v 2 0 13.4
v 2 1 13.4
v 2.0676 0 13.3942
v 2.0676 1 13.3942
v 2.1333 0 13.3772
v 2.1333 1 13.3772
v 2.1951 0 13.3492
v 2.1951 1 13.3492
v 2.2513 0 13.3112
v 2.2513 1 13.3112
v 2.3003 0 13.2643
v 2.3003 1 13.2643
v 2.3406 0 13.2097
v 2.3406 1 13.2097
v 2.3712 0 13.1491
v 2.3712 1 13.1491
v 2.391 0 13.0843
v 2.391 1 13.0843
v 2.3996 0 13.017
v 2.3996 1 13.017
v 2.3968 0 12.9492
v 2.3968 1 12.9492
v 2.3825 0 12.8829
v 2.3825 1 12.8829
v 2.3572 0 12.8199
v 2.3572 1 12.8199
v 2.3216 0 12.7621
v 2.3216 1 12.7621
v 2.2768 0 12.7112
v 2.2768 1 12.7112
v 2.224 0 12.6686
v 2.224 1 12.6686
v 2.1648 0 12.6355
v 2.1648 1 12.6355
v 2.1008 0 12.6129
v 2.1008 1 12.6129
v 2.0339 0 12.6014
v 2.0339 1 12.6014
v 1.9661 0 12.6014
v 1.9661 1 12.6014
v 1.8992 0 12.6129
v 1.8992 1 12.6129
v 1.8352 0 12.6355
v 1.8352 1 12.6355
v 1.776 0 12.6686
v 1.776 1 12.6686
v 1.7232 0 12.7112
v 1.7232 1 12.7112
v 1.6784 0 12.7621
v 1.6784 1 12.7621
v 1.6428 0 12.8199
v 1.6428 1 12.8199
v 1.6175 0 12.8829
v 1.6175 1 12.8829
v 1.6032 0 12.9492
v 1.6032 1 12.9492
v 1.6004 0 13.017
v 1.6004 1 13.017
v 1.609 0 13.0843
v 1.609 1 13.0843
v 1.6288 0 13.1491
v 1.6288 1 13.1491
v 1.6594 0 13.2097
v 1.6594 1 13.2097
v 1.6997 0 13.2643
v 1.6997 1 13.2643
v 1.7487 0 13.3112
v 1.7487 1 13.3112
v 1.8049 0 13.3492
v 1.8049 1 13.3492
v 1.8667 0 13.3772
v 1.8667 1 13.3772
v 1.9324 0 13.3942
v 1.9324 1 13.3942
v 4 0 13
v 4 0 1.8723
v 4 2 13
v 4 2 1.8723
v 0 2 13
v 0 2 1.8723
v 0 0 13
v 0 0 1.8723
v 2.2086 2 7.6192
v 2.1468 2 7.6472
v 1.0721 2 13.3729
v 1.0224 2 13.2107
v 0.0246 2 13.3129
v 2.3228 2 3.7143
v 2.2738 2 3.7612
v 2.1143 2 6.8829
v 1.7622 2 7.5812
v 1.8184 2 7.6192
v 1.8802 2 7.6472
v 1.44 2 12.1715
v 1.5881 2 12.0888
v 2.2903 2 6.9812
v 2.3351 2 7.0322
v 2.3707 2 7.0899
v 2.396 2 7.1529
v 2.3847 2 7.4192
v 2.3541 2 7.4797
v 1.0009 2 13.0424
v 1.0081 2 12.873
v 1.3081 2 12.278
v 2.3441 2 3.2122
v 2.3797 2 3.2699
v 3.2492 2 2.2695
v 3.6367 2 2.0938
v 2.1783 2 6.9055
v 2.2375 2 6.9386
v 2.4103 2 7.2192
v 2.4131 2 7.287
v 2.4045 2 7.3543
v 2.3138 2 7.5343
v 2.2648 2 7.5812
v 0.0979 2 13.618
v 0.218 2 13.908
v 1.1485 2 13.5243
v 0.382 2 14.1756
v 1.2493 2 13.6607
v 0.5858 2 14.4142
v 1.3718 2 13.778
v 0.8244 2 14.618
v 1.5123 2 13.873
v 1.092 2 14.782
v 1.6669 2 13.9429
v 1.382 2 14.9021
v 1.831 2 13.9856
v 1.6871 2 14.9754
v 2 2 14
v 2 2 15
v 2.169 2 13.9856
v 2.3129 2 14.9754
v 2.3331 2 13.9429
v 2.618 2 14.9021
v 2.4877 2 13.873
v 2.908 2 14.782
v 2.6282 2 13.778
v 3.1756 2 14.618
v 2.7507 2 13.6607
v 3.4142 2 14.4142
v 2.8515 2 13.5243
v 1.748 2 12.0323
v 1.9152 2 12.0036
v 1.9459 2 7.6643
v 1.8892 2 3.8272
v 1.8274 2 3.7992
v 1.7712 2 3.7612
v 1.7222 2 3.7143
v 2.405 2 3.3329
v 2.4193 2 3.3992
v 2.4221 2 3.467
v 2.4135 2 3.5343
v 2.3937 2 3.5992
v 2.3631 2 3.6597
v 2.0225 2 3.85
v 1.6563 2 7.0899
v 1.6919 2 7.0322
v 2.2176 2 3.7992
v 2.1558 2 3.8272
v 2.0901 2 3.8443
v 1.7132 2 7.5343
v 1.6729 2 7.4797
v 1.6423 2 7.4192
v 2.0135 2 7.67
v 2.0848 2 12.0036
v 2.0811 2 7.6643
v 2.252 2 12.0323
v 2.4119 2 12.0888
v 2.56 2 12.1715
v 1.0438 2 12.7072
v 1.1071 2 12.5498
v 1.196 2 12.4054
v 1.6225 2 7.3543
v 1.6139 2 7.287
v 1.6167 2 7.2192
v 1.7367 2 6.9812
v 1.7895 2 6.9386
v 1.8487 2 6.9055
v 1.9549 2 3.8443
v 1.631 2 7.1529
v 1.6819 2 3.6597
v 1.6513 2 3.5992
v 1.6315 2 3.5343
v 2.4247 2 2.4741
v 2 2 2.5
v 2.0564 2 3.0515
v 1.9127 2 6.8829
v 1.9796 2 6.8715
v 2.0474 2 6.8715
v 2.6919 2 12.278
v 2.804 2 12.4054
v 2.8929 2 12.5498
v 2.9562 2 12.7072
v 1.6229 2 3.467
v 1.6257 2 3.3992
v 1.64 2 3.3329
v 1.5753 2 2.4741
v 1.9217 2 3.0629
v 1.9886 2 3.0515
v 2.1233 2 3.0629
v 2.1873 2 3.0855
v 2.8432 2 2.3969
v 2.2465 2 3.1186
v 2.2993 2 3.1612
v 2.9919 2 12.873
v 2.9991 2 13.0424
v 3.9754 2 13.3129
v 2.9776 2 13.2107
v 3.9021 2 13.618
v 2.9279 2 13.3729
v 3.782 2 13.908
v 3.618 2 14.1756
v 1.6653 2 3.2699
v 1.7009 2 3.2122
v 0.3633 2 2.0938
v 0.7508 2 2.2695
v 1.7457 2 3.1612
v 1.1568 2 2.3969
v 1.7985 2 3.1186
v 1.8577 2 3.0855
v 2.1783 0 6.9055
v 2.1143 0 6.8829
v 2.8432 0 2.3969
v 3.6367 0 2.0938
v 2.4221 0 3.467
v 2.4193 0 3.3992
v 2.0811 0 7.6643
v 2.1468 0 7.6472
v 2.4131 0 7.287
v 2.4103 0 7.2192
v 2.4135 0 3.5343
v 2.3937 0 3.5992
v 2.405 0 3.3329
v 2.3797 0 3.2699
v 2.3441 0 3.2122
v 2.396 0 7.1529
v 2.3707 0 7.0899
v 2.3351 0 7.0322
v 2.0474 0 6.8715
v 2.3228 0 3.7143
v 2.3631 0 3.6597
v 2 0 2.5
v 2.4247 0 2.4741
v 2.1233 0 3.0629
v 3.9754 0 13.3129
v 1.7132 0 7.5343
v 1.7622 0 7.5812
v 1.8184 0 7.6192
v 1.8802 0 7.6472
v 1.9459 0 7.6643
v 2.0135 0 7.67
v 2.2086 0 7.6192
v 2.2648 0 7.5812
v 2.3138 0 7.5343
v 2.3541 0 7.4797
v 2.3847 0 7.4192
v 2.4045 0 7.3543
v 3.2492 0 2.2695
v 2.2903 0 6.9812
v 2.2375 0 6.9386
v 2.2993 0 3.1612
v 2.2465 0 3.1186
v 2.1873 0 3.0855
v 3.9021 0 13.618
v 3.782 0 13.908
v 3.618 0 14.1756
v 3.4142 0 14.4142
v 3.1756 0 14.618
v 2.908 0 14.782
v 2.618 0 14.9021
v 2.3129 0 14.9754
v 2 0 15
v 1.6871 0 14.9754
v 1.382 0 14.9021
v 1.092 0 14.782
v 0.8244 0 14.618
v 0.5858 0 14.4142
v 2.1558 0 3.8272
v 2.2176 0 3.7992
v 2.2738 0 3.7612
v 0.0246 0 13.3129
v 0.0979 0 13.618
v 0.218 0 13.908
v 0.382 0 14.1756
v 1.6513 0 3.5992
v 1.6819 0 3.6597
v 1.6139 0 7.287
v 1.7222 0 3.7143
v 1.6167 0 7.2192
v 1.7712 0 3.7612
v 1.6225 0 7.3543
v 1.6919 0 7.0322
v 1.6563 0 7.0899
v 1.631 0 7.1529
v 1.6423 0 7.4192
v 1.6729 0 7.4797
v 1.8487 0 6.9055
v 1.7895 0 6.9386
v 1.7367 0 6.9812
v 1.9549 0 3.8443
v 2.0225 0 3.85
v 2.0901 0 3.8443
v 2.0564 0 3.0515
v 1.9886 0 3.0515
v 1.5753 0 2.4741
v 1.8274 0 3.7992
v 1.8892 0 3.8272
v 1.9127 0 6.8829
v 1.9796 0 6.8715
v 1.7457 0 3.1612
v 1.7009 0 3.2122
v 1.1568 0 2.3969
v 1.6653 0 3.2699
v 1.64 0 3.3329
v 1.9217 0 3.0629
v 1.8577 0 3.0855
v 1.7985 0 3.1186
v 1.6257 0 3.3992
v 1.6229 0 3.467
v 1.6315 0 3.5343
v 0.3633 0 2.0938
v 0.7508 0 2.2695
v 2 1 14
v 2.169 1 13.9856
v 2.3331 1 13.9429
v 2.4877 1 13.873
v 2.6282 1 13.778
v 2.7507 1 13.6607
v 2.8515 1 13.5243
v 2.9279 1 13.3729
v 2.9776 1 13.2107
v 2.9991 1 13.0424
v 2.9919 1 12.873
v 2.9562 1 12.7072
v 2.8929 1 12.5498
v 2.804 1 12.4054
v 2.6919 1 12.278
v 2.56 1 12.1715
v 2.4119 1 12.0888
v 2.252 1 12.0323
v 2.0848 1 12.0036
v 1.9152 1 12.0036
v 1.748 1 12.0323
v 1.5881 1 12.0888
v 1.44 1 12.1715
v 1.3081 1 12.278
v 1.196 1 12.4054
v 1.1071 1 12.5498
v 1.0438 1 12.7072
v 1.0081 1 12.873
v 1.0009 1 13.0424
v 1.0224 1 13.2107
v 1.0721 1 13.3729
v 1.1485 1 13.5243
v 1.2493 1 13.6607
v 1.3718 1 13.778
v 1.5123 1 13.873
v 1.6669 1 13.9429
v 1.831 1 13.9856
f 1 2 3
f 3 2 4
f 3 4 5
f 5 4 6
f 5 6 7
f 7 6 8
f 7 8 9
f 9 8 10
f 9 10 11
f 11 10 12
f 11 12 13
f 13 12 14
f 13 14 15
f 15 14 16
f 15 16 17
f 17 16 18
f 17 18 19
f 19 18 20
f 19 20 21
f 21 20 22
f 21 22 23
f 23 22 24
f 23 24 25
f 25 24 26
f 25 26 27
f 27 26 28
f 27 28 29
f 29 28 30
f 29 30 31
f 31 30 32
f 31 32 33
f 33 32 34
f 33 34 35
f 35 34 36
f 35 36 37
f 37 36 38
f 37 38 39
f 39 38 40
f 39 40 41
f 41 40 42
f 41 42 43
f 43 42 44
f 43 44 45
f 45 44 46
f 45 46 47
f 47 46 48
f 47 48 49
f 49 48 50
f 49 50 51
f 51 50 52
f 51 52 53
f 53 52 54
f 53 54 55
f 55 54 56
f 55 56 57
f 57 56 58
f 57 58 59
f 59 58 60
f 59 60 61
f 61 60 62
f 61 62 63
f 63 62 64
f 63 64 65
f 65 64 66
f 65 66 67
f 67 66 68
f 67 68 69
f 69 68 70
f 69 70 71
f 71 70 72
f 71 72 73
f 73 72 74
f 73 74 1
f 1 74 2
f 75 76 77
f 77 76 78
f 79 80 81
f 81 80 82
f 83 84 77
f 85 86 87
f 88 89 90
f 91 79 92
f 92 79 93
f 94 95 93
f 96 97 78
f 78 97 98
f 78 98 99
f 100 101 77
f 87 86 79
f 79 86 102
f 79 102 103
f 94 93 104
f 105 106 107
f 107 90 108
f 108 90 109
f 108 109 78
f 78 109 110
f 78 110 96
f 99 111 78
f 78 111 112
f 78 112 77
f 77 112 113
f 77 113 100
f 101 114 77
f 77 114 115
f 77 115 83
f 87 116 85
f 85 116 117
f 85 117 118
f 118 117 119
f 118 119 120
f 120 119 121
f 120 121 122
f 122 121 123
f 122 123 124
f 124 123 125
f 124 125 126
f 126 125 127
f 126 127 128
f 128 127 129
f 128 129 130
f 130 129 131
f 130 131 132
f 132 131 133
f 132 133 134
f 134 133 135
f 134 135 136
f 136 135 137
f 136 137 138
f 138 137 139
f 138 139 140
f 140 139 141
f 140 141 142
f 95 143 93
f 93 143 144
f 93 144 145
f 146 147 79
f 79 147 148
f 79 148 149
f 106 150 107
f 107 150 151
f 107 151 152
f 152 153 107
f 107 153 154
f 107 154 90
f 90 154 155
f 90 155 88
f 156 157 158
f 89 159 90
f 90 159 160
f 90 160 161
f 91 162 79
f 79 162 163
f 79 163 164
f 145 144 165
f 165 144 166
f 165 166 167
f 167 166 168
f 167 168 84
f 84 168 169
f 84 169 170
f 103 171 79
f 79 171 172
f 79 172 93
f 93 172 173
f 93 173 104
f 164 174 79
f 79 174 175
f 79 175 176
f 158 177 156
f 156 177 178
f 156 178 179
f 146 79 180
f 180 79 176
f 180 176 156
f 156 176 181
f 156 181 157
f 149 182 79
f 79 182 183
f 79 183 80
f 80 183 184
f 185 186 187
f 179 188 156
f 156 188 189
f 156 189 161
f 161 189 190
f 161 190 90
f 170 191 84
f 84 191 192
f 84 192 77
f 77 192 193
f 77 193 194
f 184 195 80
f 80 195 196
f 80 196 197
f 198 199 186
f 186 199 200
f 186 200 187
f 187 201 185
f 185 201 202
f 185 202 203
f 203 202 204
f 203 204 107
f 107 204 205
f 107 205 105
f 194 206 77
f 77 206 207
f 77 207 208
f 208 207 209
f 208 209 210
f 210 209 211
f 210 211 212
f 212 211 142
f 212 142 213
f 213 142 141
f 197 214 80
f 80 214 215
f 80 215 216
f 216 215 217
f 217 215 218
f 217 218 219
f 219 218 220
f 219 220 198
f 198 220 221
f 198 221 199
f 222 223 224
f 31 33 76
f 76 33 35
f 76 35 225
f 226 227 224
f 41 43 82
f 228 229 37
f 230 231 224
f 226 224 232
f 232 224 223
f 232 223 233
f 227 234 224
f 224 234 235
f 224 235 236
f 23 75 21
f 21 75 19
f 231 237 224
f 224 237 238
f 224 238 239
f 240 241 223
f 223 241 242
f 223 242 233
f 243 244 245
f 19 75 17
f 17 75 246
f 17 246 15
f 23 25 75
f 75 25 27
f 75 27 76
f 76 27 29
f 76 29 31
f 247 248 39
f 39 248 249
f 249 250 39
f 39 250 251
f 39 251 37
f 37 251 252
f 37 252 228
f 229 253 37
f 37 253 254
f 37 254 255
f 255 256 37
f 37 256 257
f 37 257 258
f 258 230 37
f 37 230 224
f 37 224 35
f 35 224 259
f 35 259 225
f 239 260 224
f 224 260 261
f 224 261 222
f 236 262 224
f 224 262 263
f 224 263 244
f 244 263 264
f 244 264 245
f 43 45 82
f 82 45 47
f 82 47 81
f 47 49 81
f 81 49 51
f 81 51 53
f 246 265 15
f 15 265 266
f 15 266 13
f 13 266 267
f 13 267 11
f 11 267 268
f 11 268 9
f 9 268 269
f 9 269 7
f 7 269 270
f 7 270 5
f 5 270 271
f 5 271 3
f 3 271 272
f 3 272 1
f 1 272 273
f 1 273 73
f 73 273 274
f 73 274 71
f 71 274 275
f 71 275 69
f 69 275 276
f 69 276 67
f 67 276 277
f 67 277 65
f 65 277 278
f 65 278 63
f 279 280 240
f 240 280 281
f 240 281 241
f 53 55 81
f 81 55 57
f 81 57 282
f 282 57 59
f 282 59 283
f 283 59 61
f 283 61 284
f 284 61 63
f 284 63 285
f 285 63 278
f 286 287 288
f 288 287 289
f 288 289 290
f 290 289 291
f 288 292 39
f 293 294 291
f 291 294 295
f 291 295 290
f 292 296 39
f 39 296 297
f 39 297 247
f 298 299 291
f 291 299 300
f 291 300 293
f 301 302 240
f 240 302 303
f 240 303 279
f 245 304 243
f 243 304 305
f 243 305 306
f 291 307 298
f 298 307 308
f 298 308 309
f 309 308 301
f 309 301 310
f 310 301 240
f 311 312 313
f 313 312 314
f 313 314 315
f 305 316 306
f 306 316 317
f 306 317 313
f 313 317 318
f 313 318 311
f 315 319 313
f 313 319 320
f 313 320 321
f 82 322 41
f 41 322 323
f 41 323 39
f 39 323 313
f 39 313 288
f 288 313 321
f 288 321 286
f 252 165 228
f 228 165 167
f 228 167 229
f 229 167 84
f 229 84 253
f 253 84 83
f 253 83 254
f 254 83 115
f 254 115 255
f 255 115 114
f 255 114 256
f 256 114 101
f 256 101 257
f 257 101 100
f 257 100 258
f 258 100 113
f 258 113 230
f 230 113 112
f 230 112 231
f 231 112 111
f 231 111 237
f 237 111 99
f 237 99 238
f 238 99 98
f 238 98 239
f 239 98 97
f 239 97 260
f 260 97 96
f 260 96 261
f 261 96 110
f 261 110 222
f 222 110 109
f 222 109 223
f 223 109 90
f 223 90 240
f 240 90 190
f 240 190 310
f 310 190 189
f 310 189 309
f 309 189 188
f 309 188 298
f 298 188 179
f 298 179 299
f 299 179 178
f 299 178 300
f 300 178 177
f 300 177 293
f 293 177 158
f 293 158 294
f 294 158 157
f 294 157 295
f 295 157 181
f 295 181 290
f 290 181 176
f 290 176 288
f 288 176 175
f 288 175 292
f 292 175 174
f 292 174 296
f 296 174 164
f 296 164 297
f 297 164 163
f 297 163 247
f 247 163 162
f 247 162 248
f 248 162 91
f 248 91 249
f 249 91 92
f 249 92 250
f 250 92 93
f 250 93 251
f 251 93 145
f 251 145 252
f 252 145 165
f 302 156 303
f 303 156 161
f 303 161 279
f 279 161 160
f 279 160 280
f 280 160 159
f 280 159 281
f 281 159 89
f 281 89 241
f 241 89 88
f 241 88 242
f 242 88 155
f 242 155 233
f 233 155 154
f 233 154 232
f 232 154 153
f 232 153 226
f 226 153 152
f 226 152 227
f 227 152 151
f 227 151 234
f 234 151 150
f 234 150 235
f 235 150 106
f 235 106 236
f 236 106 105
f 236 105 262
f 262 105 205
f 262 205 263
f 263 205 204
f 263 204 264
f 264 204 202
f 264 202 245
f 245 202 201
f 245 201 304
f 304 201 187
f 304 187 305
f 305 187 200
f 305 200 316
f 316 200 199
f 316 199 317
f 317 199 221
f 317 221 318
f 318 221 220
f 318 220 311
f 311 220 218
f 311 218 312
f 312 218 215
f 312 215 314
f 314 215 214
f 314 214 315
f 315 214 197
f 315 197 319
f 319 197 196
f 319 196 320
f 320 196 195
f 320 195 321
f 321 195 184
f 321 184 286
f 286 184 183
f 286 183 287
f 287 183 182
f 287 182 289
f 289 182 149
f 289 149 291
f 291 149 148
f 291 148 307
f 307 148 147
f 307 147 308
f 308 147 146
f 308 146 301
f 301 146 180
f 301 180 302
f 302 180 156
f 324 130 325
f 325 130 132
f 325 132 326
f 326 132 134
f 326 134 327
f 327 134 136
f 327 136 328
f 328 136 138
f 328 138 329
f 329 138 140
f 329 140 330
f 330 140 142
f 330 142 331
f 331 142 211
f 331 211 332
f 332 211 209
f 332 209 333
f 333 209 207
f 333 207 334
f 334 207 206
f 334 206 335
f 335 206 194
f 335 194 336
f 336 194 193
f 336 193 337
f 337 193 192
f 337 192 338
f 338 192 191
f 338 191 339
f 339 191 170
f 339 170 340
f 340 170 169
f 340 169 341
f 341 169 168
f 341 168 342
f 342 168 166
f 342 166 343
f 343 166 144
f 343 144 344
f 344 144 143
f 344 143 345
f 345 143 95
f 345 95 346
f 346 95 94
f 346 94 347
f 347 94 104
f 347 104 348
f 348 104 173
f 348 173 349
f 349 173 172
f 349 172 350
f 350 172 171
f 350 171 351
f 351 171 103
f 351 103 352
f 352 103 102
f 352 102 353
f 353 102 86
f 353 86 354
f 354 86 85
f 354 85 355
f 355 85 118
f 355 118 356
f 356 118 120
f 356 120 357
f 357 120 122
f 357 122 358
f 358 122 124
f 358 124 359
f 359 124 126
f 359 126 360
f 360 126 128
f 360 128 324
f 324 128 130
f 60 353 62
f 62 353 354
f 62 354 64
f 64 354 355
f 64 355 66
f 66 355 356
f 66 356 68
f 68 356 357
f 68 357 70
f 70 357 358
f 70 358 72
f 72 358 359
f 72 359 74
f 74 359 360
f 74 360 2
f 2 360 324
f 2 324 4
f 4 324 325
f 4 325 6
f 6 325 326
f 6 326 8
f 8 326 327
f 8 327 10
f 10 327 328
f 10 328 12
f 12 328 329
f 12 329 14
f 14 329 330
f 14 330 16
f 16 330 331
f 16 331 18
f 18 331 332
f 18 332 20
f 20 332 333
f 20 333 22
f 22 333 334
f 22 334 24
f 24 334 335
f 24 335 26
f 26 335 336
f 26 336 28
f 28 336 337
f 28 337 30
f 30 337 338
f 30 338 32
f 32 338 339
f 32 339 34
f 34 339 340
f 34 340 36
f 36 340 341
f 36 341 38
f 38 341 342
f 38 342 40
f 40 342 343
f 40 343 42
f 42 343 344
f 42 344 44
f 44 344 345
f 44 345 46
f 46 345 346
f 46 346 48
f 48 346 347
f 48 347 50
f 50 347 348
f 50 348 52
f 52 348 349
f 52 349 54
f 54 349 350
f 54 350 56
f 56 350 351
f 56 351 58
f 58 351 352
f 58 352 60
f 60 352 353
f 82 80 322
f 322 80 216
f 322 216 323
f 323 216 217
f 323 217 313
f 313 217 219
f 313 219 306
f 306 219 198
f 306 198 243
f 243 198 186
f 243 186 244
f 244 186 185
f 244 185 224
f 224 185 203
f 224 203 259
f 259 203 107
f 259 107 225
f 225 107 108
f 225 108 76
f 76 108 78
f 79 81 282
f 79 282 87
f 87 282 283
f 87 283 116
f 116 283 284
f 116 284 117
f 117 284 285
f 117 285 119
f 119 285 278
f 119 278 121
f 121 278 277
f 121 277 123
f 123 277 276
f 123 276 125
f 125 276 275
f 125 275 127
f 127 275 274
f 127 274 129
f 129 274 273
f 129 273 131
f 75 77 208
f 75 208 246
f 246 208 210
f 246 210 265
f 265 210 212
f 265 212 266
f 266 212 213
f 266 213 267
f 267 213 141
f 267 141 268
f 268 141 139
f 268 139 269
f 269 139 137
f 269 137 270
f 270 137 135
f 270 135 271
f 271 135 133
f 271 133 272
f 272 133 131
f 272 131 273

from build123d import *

# Parameters (mm, degrees)
SKETCH_1_W          = 4
SKETCH_1_H          = 15
EXTRUDE_1_DEPTH     = 2
SKETCH_3_R          = 0.4
CUT_EXTRUDE_1_DEPTH = 16.652475842
SKETCH_3_3_R        = 1
CUT_EXTRUDE_2_DEPTH = 1
SKETCH_4_R          = 3.5
CUT_EXTRUDE_3_DEPTH = 16.652475842
FILLET_1_R          = 2


with BuildPart() as part:
    # 草图1 → 凸台-拉伸1 (new body)
    with BuildSketch(Plane(origin=(0, 0, 0), x_dir=(1, 0, 0), z_dir=(0, 1, 0))):
        with Locations((2, -7.5)):
            Rectangle(SKETCH_1_W, SKETCH_1_H)
    extrude(amount=EXTRUDE_1_DEPTH)

    # 草图3 → 切除-拉伸1 (cut, through all)
    with BuildSketch(Plane(origin=(0, 2, 0), x_dir=(1, 0, 0), z_dir=(0, 1, 0))):
        with Locations(Location((2, -13, 0), (0, 0, 270))):
            Circle(SKETCH_3_R)
        with Locations(Location((2.022495613, -3.450026495, 0), (0, 0, 270))):
            Circle(SKETCH_3_R)
        with Locations(Location((2.013497368, -7.270015897, 0), (0, 0, 270))):
            Circle(SKETCH_3_R)
    extrude(amount=-CUT_EXTRUDE_1_DEPTH, mode=Mode.SUBTRACT)

    # 草图3<3> → 切除-拉伸2 (cut)
    with BuildSketch(Plane(origin=(0, 2, 0), x_dir=(1, 0, 0), z_dir=(0, 1, 0))):
        with Locations(Location((2, -13, 0), (0, 0, 270))):
            Circle(SKETCH_3_3_R)
    extrude(amount=-CUT_EXTRUDE_2_DEPTH, mode=Mode.SUBTRACT)

    # 草图4 → 切除-拉伸3 (cut, through all)
    with BuildSketch(Plane(origin=(0, 2, 0), x_dir=(1, 0, 0), z_dir=(0, 1, 0))):
        with Locations((2, 1)):
            Circle(SKETCH_4_R)
    extrude(amount=-CUT_EXTRUDE_3_DEPTH, mode=Mode.SUBTRACT)

    # 圆角1
    fillet_1_edges = [part.edges().sort_by_distance(p)[0] for p in [
        (4, 1, 15),
        (0, 1, 15),
    ]]
    fillet(fillet_1_edges, radius=FILLET_1_R - 0.0001)  # a hair under: the kernel refuses the full size


solid = part.part
